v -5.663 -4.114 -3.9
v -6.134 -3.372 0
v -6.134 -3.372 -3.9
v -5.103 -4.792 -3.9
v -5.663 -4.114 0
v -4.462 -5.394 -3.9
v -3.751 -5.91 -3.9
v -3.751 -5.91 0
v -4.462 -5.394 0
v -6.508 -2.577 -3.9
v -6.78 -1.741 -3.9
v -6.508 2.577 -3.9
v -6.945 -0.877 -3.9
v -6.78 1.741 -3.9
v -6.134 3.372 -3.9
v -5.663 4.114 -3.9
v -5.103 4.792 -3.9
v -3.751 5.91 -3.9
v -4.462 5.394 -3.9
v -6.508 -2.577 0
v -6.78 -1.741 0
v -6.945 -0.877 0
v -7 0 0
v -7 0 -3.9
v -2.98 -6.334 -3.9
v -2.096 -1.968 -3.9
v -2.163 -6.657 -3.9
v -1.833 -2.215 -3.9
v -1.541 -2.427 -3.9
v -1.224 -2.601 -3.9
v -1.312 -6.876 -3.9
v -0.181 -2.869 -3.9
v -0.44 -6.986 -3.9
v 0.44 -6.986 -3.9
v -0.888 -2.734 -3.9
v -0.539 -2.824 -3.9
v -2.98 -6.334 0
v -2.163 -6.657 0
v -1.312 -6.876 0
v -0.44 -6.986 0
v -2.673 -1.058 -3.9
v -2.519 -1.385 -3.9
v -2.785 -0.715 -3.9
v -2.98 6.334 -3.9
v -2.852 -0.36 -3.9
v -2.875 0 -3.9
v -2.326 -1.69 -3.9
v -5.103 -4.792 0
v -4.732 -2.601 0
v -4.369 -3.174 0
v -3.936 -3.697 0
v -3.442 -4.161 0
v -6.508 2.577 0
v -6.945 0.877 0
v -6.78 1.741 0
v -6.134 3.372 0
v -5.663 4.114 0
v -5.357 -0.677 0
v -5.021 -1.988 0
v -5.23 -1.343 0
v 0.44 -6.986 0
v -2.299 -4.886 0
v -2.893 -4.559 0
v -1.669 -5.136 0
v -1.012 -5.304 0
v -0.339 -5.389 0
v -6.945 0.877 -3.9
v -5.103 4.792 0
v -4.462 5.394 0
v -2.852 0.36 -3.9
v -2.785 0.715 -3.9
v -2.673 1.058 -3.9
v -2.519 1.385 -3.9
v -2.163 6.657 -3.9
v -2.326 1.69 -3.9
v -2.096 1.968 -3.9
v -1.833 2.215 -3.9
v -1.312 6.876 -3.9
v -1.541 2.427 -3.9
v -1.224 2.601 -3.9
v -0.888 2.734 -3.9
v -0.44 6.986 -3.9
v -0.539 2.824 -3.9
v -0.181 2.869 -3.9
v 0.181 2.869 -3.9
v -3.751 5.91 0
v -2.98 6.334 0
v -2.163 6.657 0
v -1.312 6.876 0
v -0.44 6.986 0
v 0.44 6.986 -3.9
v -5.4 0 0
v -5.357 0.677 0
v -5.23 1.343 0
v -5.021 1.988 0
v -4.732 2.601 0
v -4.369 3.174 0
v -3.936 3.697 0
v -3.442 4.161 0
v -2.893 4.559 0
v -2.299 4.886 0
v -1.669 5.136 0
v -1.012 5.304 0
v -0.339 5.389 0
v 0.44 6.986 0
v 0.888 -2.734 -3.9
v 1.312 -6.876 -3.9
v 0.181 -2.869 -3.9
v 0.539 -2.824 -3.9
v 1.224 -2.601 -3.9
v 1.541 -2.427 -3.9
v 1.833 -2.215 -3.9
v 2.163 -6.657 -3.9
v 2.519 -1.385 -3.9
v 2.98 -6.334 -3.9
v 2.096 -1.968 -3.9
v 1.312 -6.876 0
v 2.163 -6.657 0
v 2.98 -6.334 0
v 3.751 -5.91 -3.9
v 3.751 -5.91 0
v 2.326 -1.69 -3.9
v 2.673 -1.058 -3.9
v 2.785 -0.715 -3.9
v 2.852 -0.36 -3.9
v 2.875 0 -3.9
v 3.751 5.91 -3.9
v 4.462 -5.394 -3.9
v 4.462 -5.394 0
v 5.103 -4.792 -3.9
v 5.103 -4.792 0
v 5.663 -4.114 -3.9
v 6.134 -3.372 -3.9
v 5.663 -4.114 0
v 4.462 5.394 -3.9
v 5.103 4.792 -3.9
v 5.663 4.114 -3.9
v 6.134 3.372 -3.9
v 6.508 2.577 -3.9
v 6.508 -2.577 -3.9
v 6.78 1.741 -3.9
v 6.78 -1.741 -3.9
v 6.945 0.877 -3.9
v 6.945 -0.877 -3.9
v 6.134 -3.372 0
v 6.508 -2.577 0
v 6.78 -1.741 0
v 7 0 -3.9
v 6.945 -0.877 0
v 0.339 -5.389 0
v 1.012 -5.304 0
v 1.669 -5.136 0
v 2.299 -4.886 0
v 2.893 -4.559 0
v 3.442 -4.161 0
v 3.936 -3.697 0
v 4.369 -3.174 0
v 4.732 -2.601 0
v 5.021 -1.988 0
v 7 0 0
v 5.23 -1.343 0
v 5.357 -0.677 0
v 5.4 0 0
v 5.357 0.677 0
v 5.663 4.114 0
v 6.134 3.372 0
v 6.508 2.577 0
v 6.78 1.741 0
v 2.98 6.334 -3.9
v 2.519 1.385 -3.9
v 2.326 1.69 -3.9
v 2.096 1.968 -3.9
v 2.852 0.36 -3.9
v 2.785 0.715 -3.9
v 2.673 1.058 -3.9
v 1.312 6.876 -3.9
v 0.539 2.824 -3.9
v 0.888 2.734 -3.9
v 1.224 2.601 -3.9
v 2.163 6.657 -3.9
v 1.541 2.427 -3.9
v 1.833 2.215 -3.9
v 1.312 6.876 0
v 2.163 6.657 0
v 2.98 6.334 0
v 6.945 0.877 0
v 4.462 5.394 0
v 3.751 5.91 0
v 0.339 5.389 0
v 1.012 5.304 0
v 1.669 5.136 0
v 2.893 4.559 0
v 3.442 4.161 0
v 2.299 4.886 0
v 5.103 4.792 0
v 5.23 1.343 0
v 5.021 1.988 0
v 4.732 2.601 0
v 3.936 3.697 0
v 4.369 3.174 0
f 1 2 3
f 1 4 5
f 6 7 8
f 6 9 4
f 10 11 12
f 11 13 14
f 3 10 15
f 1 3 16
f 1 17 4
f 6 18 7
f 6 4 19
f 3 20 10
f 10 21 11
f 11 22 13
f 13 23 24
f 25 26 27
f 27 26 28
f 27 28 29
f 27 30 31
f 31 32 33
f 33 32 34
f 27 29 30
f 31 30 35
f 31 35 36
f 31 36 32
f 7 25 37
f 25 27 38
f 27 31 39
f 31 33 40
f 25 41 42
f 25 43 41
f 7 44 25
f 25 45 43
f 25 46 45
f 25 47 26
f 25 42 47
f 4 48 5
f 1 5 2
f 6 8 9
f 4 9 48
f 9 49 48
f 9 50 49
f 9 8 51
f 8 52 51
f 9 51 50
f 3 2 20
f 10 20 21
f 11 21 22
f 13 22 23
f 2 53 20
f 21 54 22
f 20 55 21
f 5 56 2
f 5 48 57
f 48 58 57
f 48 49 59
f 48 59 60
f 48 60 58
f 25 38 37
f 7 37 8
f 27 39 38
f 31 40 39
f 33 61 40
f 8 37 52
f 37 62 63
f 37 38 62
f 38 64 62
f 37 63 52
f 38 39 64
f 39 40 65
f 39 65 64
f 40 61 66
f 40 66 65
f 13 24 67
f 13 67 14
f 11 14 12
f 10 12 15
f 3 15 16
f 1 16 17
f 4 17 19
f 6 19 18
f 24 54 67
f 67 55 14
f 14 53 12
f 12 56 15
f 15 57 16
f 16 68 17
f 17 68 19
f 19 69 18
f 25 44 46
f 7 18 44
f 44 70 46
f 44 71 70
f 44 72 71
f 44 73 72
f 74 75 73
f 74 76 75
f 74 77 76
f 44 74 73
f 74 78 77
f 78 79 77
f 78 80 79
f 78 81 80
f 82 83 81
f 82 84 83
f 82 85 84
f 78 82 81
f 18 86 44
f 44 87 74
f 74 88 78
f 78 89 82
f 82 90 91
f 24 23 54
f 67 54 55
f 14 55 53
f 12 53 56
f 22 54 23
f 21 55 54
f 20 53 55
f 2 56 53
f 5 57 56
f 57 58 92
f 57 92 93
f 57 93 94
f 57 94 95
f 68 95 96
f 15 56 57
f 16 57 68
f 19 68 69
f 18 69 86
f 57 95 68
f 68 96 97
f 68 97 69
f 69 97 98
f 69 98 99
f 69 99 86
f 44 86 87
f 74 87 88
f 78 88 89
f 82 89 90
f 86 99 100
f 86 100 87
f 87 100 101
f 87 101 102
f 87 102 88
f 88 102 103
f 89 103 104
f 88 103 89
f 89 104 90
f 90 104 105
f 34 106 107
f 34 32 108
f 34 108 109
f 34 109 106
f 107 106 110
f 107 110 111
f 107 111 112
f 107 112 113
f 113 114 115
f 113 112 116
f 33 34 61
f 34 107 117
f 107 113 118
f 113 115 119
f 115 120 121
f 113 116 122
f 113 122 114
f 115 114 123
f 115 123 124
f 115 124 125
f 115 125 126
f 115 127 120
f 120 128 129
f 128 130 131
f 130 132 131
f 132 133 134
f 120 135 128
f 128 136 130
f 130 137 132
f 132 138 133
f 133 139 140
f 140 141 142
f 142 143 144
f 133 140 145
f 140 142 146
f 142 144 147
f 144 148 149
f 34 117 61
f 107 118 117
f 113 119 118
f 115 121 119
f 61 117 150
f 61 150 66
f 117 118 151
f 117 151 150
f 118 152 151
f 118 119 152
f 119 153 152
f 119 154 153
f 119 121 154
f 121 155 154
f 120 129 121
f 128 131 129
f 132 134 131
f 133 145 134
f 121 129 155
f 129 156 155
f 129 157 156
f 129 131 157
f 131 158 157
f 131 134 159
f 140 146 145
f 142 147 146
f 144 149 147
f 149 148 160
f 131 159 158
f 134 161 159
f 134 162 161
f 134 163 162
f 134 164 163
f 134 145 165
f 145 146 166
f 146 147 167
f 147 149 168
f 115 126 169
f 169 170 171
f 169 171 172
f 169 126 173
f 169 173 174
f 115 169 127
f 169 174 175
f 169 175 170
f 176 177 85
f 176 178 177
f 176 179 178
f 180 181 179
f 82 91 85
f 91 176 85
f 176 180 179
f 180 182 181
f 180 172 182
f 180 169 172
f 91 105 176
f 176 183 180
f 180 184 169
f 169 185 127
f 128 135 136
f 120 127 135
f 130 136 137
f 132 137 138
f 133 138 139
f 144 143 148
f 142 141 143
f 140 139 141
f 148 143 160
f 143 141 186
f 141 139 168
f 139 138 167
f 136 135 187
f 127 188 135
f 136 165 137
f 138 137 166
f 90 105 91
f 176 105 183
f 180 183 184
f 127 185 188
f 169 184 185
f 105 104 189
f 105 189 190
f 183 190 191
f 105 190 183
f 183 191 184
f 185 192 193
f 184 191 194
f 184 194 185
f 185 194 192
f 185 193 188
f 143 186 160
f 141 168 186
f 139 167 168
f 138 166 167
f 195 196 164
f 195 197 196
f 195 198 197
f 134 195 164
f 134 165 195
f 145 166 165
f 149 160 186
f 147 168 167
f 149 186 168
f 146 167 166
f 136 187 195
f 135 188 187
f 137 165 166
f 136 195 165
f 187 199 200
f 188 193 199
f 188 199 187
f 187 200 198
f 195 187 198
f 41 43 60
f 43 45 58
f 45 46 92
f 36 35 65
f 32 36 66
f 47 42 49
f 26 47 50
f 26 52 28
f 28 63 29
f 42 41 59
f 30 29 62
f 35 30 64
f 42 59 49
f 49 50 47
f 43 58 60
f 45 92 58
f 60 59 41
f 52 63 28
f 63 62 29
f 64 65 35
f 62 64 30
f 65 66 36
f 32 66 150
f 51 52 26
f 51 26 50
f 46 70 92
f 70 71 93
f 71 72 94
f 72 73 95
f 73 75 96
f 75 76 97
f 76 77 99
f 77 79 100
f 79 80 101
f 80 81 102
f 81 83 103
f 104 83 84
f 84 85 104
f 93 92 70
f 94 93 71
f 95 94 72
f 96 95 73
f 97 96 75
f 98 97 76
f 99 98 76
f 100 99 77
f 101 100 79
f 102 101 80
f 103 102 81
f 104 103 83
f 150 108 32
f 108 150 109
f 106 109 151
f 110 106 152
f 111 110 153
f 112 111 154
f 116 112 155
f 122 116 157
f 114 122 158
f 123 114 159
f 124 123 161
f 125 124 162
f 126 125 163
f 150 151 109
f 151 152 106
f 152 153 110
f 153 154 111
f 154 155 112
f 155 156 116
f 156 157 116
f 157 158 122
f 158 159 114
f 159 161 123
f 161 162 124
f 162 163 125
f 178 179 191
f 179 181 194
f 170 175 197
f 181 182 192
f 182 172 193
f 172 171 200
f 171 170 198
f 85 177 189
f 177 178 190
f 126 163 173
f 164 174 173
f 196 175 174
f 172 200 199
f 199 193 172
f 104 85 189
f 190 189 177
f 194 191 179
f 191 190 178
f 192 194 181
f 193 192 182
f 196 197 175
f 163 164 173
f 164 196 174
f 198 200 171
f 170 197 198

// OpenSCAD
$fn = 50;

difference() {
	union() {
		translate(v = [0, 0, -3.9]) {
			cylinder(h = 3.9, r = 7.0);
		}
		#translate(v = [0, 0, -6.9]) {
			cylinder(h = 6.9, r = 2.875);
		}
	}
	union() {
		translate(v = [0, 0, 0]) {
			rotate(a = [0, 0, 0]) {
				difference() {
					union() {
						translate(v = [0, 0, -6.9]) {
							cylinder(h = 6.9, r = 2.6);
						}
						translate(v = [0, 0, -3.9]) {
							cylinder(h = 3.9, r1 = 2.875, r2 = 5.4);
						}
						translate(v = [0, 0, -6.9]) {
							cylinder(h = 6.9, r = 2.875);
						}
						translate(v = [0, 0, -6.9]) {
							cylinder(h = 6.9, r = 2.6);
						}
					}
					union();
				}
			}
		}
	}
}
